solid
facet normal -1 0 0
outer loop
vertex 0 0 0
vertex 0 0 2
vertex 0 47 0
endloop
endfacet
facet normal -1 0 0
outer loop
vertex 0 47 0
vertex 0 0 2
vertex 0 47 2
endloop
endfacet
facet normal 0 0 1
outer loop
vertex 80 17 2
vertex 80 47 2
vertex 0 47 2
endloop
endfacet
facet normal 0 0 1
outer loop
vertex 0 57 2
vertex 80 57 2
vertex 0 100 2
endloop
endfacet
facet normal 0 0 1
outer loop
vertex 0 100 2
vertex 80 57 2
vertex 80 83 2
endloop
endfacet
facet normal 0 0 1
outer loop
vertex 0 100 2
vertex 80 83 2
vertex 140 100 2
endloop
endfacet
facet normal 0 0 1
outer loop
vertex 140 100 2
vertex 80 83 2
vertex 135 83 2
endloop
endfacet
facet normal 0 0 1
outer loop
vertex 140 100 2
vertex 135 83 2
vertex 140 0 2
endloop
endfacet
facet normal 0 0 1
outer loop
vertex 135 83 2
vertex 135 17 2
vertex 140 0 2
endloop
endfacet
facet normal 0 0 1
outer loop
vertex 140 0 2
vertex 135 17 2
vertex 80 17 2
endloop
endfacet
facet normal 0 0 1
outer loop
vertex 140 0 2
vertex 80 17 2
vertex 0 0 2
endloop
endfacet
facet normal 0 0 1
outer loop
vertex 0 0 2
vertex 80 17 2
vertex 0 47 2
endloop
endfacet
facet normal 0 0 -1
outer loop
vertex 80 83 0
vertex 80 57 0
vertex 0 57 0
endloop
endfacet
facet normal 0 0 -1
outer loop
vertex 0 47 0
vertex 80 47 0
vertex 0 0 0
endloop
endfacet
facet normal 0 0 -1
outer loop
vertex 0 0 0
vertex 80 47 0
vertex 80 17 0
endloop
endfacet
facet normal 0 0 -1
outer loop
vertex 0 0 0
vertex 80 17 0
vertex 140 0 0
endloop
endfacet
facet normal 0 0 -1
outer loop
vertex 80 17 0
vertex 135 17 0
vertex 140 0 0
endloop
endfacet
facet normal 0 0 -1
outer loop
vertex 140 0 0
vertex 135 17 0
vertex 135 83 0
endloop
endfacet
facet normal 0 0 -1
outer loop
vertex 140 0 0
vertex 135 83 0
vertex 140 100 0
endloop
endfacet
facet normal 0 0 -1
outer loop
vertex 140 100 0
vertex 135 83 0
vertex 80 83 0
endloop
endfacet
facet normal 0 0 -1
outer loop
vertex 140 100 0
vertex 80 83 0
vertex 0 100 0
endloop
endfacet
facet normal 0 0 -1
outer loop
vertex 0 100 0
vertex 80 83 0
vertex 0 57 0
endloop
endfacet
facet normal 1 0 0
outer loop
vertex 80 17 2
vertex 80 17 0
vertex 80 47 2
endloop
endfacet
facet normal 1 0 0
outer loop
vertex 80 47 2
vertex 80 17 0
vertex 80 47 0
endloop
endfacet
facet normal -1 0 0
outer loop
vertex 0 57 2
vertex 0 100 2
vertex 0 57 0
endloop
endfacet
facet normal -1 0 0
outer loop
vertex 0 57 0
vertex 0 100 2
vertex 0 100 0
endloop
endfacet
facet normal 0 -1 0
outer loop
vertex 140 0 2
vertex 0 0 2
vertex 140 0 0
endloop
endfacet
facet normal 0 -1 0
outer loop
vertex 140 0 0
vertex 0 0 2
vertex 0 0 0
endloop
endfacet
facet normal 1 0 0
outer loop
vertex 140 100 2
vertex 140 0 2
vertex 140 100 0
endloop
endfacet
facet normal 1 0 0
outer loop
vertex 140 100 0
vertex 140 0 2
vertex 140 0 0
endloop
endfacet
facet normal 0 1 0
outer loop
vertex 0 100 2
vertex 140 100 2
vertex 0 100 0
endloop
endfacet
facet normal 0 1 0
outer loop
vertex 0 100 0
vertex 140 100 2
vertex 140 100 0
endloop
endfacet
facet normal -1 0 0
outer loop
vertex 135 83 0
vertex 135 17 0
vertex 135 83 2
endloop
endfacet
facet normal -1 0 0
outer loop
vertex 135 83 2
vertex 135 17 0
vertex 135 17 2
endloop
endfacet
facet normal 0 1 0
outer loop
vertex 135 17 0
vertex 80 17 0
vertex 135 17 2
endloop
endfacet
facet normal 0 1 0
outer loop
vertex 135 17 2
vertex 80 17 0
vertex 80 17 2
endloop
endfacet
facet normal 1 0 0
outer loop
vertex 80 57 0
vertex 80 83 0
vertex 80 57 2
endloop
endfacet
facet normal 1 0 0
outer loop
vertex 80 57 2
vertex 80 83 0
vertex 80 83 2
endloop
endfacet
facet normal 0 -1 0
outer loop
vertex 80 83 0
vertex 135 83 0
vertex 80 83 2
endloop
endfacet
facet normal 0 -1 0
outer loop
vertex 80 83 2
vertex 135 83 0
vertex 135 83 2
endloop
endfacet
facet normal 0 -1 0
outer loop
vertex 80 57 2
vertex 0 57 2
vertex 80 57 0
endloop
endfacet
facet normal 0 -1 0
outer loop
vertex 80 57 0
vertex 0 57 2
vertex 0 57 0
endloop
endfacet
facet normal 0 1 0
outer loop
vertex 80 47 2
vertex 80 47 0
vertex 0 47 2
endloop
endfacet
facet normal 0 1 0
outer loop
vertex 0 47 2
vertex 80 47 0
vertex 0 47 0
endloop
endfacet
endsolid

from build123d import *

# Parameters (mm, degrees)
ESQUISSE1_W             = 140
ESQUISSE1_H             = 100
BOSS_EXTRU_1_DEPTH      = 2
ESQUISSE2_W             = 55
ESQUISSE2_H             = 66
ENL_V_MAT_EXTRU_1_DEPTH = 2
ESQUISSE3_W             = 78
ESQUISSE3_H             = 10
ESQUISSE3_W_2           = 2
ENL_V_MAT_EXTRU_2_DEPTH = 3


with BuildPart() as part:
    # Esquisse1 → Boss.-Extru.1 (new body)
    with BuildSketch(Plane.XY):
        with Locations((70, 50)):
            Rectangle(ESQUISSE1_W, ESQUISSE1_H)
    extrude(amount=BOSS_EXTRU_1_DEPTH)

    # Esquisse2 → Enlèv. mat.-Extru.1 (cut)
    with BuildSketch(Plane.XY.offset(2)):
        with Locations((107.5, 50)):
            Rectangle(ESQUISSE2_W, ESQUISSE2_H)
    extrude(amount=-ENL_V_MAT_EXTRU_1_DEPTH, mode=Mode.SUBTRACT)

    # Esquisse3 → Enlèv. mat.-Extru.2 (cut)
    with BuildSketch(Plane.XY.offset(2)):
        with Locations((39, 52)):
            Rectangle(ESQUISSE3_W, ESQUISSE3_H)
        with Locations((79, 52)):
            Rectangle(ESQUISSE3_W_2, ESQUISSE3_H)
    extrude(amount=-ENL_V_MAT_EXTRU_2_DEPTH, mode=Mode.SUBTRACT)


solid = part.part
